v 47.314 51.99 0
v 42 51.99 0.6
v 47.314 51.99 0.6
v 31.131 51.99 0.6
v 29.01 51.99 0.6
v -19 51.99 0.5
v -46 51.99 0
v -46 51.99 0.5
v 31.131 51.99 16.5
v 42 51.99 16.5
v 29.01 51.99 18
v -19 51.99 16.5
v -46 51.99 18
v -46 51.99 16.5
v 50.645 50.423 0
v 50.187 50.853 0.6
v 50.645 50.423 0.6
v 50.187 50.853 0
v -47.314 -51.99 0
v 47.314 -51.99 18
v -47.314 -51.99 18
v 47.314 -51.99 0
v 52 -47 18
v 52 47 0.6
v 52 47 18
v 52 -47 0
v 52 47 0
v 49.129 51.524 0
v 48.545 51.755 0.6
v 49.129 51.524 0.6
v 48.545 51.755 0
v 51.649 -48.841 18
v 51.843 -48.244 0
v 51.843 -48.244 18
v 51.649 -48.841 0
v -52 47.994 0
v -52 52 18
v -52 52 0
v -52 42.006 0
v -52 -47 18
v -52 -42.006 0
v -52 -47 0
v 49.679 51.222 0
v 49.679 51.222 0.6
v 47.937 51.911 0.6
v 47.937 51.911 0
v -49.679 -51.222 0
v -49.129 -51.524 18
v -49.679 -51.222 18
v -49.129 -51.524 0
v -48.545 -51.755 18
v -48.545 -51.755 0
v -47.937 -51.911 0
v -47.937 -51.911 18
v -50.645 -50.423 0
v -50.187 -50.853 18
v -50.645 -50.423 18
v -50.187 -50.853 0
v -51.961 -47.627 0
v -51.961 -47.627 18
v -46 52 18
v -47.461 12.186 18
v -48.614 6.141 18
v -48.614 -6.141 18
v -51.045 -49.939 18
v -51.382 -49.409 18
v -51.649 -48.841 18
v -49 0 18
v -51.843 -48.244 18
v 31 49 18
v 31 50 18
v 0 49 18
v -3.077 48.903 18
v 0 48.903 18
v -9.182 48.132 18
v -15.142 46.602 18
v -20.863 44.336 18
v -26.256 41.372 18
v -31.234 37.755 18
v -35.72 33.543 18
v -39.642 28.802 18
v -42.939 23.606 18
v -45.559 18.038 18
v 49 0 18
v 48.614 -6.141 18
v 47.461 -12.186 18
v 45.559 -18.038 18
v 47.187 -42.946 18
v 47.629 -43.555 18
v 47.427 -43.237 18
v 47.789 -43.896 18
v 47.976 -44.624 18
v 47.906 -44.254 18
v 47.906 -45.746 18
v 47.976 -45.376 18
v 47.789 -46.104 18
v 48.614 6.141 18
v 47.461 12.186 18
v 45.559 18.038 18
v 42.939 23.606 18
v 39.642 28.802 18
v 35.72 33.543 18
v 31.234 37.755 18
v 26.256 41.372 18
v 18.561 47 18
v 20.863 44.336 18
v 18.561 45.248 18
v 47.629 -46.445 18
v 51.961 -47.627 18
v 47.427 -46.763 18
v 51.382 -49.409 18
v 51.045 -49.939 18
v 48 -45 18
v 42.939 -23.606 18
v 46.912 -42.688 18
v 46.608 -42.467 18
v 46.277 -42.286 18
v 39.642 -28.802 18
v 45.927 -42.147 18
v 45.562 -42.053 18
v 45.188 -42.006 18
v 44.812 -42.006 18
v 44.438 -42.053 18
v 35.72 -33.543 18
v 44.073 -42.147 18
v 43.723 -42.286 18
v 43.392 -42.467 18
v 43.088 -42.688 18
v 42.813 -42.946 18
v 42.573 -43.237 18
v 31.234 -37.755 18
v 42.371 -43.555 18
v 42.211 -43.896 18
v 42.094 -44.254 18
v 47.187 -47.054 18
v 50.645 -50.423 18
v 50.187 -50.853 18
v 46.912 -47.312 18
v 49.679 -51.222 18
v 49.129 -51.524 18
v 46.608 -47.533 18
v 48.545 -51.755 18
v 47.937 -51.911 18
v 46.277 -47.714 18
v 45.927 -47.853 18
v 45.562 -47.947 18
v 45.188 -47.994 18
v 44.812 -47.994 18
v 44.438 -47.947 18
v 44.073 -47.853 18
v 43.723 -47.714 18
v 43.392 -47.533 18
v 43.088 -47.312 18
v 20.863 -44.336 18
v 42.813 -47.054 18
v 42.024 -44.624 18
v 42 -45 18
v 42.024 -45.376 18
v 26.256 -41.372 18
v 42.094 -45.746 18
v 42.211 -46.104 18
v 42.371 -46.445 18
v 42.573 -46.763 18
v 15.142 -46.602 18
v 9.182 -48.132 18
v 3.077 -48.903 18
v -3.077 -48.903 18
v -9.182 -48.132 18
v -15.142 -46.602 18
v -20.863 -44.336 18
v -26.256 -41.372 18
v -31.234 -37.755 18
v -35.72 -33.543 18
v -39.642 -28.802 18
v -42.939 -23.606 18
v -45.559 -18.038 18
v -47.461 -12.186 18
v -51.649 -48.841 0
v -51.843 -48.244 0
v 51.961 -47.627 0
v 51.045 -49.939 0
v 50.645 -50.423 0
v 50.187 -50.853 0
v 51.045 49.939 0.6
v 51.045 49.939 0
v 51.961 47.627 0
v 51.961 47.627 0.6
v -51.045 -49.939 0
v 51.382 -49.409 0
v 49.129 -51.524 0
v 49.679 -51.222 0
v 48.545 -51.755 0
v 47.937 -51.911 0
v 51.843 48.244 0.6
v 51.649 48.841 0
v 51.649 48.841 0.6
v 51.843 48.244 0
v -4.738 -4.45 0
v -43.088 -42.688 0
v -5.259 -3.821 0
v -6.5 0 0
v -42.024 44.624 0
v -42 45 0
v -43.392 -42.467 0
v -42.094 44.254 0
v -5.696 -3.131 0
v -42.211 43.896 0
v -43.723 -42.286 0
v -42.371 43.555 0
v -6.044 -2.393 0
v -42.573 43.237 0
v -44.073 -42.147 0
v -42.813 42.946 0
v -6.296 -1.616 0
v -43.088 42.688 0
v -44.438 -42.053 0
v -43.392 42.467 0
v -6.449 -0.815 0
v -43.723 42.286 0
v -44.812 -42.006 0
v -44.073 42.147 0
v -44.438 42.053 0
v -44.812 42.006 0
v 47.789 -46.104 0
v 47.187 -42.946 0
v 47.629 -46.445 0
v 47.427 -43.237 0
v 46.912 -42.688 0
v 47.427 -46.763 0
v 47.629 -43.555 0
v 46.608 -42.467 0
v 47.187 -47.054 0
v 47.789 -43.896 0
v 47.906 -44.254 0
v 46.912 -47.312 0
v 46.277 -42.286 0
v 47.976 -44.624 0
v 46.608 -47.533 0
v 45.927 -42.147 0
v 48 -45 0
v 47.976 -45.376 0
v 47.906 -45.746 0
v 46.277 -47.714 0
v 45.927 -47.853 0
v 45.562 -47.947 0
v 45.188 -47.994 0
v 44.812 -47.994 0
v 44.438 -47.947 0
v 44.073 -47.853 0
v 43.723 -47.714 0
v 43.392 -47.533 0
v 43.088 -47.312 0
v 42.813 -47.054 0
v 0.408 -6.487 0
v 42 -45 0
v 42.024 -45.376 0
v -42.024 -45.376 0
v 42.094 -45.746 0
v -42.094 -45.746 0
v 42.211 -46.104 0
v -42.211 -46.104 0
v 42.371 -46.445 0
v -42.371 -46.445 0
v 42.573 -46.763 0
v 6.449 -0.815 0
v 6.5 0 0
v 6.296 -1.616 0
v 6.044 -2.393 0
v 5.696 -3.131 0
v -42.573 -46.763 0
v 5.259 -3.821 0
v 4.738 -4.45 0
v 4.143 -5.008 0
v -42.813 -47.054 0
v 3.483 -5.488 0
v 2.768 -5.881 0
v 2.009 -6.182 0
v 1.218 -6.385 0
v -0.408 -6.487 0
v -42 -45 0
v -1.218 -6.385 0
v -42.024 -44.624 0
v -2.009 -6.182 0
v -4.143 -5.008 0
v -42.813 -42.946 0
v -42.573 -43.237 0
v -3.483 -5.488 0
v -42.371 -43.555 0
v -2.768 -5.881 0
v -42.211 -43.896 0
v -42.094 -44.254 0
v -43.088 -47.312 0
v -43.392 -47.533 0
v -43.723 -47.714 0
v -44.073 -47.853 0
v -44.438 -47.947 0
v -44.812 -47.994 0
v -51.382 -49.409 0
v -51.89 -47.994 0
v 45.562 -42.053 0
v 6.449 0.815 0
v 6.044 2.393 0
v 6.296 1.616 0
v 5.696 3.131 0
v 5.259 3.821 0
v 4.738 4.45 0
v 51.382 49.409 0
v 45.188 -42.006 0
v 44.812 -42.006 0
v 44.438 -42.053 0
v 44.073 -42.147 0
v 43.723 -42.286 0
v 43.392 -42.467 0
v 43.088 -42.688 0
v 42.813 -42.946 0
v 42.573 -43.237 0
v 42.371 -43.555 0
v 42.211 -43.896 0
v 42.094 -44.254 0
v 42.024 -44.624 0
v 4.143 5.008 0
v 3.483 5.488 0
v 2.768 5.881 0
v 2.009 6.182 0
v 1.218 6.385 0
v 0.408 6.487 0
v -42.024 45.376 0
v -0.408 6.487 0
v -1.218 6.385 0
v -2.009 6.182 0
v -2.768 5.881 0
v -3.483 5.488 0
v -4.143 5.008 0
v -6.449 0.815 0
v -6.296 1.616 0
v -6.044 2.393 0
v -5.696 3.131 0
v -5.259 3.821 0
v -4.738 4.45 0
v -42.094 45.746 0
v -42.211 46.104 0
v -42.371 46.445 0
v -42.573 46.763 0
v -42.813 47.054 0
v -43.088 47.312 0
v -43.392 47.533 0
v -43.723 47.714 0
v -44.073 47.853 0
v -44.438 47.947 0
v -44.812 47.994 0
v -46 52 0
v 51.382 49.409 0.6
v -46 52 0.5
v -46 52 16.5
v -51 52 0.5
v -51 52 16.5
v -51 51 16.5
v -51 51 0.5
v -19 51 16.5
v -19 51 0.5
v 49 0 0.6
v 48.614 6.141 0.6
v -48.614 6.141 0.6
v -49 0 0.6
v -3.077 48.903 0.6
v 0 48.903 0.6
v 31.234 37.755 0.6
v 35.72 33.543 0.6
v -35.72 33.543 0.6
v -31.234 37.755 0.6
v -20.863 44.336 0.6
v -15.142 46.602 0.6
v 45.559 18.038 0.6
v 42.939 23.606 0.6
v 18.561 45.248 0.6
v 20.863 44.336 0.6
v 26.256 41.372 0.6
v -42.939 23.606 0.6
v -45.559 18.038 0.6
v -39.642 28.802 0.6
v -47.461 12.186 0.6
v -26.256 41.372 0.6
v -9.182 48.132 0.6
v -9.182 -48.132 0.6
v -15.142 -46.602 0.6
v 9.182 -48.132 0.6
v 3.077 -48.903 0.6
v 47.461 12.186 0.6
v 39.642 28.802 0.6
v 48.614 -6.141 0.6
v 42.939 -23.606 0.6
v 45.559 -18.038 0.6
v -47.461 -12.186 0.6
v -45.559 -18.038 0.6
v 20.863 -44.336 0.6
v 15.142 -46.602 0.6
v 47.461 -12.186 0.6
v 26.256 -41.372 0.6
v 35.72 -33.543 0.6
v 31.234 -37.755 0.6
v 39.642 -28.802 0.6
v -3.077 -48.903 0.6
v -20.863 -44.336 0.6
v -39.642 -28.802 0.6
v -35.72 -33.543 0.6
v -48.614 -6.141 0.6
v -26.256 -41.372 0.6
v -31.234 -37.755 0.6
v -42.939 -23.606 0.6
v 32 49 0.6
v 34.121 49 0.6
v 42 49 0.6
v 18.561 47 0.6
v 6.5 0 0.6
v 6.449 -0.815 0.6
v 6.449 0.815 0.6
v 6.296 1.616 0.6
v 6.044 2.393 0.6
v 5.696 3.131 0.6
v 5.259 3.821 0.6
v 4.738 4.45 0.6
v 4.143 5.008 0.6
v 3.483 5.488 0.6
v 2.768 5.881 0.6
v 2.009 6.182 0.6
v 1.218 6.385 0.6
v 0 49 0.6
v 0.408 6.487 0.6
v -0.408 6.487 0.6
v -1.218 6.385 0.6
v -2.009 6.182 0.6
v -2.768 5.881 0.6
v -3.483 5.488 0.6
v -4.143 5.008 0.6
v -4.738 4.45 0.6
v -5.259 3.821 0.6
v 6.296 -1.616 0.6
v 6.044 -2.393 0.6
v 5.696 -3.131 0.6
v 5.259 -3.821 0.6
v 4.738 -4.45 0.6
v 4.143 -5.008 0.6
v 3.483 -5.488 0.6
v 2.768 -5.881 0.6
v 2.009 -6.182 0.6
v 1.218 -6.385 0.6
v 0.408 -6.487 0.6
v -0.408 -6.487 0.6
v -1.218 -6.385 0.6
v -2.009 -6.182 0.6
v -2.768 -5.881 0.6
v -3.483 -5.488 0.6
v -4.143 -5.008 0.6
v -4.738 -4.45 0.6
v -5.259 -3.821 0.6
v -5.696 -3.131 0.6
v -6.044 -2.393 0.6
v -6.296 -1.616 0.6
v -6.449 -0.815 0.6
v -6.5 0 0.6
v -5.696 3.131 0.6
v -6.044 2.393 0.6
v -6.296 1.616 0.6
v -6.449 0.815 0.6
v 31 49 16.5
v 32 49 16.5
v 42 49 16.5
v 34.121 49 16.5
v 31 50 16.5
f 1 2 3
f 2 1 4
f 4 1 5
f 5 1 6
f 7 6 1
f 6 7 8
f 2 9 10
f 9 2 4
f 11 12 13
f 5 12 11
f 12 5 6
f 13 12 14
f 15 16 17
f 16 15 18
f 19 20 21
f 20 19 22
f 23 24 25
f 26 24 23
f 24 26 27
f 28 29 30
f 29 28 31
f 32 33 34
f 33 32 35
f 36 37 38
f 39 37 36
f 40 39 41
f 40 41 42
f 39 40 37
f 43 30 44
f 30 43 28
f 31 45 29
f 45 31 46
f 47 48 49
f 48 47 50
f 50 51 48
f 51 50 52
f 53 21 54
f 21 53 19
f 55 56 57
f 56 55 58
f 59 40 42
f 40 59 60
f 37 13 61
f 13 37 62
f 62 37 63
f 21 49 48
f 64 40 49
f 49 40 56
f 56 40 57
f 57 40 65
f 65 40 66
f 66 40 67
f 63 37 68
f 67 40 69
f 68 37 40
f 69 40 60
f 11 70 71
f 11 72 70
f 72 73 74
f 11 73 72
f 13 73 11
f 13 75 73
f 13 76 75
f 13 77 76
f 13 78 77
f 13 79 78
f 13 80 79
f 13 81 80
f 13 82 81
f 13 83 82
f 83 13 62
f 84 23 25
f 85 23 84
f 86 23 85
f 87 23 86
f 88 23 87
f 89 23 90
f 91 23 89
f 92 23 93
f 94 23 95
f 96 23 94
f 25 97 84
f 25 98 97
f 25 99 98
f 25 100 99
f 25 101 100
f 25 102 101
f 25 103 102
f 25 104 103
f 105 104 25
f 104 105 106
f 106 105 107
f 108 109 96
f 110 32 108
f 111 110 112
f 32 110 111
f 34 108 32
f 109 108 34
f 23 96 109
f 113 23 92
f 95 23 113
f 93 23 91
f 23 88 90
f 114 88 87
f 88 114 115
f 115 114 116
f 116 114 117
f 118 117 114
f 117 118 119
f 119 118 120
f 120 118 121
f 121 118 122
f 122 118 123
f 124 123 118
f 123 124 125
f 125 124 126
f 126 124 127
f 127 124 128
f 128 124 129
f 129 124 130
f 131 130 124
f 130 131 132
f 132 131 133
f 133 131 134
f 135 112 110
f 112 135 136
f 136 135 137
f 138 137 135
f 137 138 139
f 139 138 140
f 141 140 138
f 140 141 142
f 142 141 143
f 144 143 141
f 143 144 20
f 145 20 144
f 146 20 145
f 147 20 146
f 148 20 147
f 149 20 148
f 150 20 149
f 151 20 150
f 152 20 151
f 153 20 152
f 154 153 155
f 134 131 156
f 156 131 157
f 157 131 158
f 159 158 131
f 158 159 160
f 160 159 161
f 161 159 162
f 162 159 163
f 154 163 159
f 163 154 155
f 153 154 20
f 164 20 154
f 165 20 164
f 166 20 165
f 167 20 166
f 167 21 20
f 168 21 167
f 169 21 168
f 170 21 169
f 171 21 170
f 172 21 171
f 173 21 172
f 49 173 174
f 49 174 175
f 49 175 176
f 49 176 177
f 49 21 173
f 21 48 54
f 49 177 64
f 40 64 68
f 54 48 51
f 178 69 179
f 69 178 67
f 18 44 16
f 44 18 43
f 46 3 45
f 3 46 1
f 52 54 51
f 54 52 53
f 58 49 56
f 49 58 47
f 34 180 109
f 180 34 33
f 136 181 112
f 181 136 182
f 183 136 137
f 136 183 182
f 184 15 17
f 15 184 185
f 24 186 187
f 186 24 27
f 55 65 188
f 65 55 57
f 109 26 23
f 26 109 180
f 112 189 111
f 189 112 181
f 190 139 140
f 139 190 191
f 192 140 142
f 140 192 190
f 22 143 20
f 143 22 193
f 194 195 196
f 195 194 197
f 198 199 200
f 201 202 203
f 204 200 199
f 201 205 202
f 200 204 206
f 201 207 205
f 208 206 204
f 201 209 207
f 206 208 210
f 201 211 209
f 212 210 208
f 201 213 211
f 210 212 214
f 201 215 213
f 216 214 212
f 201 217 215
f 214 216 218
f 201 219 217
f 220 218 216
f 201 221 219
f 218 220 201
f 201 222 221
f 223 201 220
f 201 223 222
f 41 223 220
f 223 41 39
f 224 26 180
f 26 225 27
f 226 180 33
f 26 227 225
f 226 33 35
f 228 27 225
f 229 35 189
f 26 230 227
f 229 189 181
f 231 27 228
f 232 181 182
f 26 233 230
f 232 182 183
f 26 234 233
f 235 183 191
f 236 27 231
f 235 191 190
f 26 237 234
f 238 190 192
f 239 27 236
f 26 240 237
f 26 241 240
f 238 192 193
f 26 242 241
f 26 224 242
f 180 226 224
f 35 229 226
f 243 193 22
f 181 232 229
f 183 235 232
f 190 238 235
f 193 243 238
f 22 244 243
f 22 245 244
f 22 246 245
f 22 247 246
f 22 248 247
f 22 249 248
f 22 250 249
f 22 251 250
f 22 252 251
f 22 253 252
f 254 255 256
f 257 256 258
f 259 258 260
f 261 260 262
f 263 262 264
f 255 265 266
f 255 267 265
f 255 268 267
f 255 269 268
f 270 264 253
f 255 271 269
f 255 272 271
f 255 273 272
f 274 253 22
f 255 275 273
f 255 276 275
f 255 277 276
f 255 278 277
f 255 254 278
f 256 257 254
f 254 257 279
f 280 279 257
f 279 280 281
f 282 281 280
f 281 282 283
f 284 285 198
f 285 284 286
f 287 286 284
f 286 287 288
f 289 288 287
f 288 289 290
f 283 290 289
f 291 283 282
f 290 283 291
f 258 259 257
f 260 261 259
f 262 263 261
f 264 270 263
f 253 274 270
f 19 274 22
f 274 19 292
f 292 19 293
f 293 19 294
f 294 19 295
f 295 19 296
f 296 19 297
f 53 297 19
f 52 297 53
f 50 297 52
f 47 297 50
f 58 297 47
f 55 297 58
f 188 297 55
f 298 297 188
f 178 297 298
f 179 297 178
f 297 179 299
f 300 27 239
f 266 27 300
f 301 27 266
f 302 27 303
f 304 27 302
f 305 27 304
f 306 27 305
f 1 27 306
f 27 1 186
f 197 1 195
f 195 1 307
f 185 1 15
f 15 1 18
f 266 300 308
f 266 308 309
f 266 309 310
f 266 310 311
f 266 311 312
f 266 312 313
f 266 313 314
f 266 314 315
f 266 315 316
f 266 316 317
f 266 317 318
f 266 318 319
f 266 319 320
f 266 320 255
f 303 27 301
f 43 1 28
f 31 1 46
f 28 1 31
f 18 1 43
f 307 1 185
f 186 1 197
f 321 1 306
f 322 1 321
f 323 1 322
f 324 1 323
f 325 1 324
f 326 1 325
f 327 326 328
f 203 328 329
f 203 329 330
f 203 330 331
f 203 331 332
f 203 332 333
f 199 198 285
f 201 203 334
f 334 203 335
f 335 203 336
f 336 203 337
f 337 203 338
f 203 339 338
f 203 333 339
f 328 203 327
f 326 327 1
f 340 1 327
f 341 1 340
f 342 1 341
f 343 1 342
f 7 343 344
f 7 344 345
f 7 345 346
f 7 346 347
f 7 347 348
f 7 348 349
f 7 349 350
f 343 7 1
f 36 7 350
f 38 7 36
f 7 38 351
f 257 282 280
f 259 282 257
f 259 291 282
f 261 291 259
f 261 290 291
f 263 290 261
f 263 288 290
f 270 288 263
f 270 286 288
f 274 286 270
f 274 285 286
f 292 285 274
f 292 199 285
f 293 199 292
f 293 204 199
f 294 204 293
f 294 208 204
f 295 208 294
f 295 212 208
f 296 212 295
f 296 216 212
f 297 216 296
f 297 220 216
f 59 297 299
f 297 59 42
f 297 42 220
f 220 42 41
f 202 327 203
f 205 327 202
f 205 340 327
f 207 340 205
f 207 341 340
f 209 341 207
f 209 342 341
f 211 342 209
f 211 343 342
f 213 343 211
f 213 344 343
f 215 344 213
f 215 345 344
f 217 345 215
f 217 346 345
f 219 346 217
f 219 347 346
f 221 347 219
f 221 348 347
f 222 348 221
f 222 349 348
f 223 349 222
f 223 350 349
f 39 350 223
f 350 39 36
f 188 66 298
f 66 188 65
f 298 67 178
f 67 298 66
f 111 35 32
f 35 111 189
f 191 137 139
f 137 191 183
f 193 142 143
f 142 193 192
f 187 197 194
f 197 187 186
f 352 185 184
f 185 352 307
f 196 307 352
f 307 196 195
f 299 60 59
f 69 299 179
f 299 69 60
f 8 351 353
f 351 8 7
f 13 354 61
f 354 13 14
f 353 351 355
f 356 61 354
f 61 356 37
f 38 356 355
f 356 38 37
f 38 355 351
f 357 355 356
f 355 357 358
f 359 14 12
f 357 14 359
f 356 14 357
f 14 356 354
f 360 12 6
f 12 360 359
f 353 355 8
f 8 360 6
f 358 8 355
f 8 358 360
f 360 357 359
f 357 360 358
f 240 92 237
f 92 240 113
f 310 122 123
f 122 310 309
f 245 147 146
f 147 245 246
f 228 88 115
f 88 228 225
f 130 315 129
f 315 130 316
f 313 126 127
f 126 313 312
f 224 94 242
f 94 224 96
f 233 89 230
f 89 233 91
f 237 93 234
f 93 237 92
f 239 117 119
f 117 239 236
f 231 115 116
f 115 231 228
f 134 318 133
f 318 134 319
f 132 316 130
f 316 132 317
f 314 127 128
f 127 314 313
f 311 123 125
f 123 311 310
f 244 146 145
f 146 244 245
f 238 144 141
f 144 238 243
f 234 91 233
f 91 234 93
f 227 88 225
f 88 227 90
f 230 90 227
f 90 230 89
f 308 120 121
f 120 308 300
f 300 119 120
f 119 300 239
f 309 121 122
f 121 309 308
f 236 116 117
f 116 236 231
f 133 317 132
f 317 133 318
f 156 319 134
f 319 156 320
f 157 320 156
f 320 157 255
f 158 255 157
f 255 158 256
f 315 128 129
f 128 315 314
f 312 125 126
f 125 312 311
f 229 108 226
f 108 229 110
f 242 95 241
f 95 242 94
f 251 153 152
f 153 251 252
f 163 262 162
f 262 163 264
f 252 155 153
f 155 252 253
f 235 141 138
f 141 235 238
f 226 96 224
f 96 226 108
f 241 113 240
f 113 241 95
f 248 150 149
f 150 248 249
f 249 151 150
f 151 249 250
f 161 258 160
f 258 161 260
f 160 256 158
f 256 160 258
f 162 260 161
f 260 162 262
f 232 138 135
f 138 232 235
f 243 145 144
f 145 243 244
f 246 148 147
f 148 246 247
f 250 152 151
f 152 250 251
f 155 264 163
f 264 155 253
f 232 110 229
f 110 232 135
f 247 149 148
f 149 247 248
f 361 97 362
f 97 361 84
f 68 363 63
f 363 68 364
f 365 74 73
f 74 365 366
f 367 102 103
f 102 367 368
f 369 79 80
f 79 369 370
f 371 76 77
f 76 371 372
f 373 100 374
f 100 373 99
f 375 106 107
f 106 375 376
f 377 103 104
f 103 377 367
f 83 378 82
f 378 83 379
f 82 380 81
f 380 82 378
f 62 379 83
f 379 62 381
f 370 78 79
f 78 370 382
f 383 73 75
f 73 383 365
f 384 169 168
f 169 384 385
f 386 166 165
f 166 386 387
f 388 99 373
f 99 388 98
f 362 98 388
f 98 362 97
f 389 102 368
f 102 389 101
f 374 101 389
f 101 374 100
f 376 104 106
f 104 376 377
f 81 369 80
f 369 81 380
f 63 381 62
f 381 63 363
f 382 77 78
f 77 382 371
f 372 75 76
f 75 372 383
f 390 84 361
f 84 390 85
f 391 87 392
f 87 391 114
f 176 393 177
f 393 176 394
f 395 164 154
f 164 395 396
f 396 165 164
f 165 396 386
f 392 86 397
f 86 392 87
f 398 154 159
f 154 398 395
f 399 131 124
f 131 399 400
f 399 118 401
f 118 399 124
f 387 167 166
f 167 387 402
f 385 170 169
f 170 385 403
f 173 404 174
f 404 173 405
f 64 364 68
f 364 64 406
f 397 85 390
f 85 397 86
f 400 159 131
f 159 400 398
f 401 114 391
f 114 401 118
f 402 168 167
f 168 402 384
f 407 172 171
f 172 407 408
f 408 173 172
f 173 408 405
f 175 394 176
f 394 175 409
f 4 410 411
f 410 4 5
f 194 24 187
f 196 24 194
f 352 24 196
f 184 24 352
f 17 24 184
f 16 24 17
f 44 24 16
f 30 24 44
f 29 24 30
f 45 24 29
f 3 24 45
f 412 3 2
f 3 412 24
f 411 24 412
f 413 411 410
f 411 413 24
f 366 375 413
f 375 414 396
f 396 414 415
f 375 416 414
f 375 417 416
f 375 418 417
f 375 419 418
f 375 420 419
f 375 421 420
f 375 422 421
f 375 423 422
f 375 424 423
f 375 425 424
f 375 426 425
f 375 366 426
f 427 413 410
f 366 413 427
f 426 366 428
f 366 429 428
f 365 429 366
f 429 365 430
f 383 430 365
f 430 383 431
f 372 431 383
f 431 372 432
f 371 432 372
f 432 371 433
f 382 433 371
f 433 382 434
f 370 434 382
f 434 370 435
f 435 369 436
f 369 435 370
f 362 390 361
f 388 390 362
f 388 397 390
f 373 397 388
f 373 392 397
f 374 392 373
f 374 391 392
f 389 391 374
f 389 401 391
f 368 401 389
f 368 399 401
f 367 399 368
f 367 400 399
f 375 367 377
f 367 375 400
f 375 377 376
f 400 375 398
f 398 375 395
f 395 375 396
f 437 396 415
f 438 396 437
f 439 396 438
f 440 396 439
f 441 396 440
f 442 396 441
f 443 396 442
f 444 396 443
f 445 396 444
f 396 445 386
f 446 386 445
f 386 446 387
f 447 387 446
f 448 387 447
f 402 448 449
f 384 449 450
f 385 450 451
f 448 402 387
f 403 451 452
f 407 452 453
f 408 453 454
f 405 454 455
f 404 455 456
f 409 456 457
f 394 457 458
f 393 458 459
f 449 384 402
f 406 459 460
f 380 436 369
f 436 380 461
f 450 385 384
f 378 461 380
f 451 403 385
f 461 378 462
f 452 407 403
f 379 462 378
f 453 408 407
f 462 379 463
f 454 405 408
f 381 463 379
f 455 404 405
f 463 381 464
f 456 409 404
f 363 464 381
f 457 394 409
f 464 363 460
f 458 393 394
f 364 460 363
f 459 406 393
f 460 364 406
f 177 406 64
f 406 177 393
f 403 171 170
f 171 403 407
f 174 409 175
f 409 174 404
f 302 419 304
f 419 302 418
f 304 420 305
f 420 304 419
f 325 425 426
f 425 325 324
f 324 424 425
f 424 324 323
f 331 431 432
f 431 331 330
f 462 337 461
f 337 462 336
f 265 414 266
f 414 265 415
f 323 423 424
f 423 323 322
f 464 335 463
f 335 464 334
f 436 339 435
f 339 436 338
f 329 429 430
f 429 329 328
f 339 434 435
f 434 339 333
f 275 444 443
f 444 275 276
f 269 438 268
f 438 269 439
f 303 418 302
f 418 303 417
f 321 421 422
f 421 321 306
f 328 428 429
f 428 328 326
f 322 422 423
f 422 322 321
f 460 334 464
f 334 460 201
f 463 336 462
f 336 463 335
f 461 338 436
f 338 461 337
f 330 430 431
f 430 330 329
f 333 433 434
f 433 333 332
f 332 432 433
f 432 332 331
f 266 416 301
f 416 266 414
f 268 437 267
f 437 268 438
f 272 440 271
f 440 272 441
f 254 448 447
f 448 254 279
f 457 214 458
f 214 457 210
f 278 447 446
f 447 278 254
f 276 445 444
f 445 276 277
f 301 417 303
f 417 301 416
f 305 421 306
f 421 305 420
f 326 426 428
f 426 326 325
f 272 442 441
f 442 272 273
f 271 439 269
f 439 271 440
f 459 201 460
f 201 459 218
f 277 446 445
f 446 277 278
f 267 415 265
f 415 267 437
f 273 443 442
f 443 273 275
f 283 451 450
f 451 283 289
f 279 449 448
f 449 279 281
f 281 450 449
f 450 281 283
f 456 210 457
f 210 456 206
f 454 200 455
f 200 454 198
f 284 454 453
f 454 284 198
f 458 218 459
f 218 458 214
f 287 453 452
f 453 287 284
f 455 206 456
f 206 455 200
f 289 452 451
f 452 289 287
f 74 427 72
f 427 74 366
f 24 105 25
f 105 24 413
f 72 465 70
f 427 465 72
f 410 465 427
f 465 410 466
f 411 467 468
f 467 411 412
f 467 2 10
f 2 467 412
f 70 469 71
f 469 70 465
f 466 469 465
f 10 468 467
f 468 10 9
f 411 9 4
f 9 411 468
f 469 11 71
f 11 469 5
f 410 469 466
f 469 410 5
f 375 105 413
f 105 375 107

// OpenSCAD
$fn = 50;


difference() {
	union() {
		hull() {
			translate(v = [-47.0000000000, 47.0000000000, 0]) {
				cylinder(h = 18, r = 5);
			}
			translate(v = [47.0000000000, 47.0000000000, 0]) {
				cylinder(h = 18, r = 5);
			}
			translate(v = [-47.0000000000, -47.0000000000, 0]) {
				cylinder(h = 18, r = 5);
			}
			translate(v = [47.0000000000, -47.0000000000, 0]) {
				cylinder(h = 18, r = 5);
			}
		}
		translate(v = [-52.0000000000, 46.0000000000, 0]) {
			cube(size = [6, 6, 18]);
		}
	}
	union() {
		translate(v = [-52.5000000000, -45.0000000000, -250.0000000000]) {
			rotate(a = [0, 0, 0]) {
				difference() {
					union() {
						hull() {
							translate(v = [7.5000000000, 0, 0]) {
								cylinder(h = 250, r = 3.0000000000, r1 = 3.0000000000, r2 = 3.0000000000);
							}
							translate(v = [-7.5000000000, 0, 0]) {
								cylinder(h = 250, r = 3.0000000000, r1 = 3.0000000000, r2 = 3.0000000000);
							}
						}
					}
					union();
				}
			}
		}
		translate(v = [-52.5000000000, 45.0000000000, -250.0000000000]) {
			rotate(a = [0, 0, 0]) {
				difference() {
					union() {
						hull() {
							translate(v = [7.5000000000, 0, 0]) {
								cylinder(h = 250, r = 3.0000000000, r1 = 3.0000000000, r2 = 3.0000000000);
							}
							translate(v = [-7.5000000000, 0, 0]) {
								cylinder(h = 250, r = 3.0000000000, r1 = 3.0000000000, r2 = 3.0000000000);
							}
						}
					}
					union();
				}
			}
		}
		translate(v = [-51.0000000000, 51.0000000000, 0.5000000000]) {
			cube(size = [32, 1, 16]);
		}
		translate(v = [45.0000000000, -45.0000000000, -50.0000000000]) {
			cylinder(h = 100, r = 3.0000000000);
		}
		translate(v = [0, 0, 0.6000000000]) {
			cylinder(h = 20.4000000000, r = 49.0000000000);
		}
		translate(v = [0, 0, -9.0000000000]) {
			cylinder(h = 18, r = 6.5000000000);
		}
		translate(v = [0.0000000000, 47.0000000000, 0.6000000000]) {
			cube(size = [52.0000000000, 2, 20.4000000000]);
		}
		translate(v = [42.0000000000, 47.0000000000, 0.6000000000]) {
			cube(size = [10, 5, 20.4000000000]);
		}
		translate(v = [31.0000000000, 47.0000000000, 16.5000000000]) {
			cube(size = [21, 5, 1.5000000000]);
		}
		translate(v = [28.2500000000, 52.7500000000, 0.6000000000]) {
			rotate(a = [0, 0, -45]) {
				cube(size = [7.5000000000, 1.5000000000, 20.4000000000]);
			}
		}
		translate(v = [11.0610000000, 45.0000000000, 0.6000000000]) {
			cube(size = [7.5000000000, 2, 17.4000000000]);
		}
	}
}
